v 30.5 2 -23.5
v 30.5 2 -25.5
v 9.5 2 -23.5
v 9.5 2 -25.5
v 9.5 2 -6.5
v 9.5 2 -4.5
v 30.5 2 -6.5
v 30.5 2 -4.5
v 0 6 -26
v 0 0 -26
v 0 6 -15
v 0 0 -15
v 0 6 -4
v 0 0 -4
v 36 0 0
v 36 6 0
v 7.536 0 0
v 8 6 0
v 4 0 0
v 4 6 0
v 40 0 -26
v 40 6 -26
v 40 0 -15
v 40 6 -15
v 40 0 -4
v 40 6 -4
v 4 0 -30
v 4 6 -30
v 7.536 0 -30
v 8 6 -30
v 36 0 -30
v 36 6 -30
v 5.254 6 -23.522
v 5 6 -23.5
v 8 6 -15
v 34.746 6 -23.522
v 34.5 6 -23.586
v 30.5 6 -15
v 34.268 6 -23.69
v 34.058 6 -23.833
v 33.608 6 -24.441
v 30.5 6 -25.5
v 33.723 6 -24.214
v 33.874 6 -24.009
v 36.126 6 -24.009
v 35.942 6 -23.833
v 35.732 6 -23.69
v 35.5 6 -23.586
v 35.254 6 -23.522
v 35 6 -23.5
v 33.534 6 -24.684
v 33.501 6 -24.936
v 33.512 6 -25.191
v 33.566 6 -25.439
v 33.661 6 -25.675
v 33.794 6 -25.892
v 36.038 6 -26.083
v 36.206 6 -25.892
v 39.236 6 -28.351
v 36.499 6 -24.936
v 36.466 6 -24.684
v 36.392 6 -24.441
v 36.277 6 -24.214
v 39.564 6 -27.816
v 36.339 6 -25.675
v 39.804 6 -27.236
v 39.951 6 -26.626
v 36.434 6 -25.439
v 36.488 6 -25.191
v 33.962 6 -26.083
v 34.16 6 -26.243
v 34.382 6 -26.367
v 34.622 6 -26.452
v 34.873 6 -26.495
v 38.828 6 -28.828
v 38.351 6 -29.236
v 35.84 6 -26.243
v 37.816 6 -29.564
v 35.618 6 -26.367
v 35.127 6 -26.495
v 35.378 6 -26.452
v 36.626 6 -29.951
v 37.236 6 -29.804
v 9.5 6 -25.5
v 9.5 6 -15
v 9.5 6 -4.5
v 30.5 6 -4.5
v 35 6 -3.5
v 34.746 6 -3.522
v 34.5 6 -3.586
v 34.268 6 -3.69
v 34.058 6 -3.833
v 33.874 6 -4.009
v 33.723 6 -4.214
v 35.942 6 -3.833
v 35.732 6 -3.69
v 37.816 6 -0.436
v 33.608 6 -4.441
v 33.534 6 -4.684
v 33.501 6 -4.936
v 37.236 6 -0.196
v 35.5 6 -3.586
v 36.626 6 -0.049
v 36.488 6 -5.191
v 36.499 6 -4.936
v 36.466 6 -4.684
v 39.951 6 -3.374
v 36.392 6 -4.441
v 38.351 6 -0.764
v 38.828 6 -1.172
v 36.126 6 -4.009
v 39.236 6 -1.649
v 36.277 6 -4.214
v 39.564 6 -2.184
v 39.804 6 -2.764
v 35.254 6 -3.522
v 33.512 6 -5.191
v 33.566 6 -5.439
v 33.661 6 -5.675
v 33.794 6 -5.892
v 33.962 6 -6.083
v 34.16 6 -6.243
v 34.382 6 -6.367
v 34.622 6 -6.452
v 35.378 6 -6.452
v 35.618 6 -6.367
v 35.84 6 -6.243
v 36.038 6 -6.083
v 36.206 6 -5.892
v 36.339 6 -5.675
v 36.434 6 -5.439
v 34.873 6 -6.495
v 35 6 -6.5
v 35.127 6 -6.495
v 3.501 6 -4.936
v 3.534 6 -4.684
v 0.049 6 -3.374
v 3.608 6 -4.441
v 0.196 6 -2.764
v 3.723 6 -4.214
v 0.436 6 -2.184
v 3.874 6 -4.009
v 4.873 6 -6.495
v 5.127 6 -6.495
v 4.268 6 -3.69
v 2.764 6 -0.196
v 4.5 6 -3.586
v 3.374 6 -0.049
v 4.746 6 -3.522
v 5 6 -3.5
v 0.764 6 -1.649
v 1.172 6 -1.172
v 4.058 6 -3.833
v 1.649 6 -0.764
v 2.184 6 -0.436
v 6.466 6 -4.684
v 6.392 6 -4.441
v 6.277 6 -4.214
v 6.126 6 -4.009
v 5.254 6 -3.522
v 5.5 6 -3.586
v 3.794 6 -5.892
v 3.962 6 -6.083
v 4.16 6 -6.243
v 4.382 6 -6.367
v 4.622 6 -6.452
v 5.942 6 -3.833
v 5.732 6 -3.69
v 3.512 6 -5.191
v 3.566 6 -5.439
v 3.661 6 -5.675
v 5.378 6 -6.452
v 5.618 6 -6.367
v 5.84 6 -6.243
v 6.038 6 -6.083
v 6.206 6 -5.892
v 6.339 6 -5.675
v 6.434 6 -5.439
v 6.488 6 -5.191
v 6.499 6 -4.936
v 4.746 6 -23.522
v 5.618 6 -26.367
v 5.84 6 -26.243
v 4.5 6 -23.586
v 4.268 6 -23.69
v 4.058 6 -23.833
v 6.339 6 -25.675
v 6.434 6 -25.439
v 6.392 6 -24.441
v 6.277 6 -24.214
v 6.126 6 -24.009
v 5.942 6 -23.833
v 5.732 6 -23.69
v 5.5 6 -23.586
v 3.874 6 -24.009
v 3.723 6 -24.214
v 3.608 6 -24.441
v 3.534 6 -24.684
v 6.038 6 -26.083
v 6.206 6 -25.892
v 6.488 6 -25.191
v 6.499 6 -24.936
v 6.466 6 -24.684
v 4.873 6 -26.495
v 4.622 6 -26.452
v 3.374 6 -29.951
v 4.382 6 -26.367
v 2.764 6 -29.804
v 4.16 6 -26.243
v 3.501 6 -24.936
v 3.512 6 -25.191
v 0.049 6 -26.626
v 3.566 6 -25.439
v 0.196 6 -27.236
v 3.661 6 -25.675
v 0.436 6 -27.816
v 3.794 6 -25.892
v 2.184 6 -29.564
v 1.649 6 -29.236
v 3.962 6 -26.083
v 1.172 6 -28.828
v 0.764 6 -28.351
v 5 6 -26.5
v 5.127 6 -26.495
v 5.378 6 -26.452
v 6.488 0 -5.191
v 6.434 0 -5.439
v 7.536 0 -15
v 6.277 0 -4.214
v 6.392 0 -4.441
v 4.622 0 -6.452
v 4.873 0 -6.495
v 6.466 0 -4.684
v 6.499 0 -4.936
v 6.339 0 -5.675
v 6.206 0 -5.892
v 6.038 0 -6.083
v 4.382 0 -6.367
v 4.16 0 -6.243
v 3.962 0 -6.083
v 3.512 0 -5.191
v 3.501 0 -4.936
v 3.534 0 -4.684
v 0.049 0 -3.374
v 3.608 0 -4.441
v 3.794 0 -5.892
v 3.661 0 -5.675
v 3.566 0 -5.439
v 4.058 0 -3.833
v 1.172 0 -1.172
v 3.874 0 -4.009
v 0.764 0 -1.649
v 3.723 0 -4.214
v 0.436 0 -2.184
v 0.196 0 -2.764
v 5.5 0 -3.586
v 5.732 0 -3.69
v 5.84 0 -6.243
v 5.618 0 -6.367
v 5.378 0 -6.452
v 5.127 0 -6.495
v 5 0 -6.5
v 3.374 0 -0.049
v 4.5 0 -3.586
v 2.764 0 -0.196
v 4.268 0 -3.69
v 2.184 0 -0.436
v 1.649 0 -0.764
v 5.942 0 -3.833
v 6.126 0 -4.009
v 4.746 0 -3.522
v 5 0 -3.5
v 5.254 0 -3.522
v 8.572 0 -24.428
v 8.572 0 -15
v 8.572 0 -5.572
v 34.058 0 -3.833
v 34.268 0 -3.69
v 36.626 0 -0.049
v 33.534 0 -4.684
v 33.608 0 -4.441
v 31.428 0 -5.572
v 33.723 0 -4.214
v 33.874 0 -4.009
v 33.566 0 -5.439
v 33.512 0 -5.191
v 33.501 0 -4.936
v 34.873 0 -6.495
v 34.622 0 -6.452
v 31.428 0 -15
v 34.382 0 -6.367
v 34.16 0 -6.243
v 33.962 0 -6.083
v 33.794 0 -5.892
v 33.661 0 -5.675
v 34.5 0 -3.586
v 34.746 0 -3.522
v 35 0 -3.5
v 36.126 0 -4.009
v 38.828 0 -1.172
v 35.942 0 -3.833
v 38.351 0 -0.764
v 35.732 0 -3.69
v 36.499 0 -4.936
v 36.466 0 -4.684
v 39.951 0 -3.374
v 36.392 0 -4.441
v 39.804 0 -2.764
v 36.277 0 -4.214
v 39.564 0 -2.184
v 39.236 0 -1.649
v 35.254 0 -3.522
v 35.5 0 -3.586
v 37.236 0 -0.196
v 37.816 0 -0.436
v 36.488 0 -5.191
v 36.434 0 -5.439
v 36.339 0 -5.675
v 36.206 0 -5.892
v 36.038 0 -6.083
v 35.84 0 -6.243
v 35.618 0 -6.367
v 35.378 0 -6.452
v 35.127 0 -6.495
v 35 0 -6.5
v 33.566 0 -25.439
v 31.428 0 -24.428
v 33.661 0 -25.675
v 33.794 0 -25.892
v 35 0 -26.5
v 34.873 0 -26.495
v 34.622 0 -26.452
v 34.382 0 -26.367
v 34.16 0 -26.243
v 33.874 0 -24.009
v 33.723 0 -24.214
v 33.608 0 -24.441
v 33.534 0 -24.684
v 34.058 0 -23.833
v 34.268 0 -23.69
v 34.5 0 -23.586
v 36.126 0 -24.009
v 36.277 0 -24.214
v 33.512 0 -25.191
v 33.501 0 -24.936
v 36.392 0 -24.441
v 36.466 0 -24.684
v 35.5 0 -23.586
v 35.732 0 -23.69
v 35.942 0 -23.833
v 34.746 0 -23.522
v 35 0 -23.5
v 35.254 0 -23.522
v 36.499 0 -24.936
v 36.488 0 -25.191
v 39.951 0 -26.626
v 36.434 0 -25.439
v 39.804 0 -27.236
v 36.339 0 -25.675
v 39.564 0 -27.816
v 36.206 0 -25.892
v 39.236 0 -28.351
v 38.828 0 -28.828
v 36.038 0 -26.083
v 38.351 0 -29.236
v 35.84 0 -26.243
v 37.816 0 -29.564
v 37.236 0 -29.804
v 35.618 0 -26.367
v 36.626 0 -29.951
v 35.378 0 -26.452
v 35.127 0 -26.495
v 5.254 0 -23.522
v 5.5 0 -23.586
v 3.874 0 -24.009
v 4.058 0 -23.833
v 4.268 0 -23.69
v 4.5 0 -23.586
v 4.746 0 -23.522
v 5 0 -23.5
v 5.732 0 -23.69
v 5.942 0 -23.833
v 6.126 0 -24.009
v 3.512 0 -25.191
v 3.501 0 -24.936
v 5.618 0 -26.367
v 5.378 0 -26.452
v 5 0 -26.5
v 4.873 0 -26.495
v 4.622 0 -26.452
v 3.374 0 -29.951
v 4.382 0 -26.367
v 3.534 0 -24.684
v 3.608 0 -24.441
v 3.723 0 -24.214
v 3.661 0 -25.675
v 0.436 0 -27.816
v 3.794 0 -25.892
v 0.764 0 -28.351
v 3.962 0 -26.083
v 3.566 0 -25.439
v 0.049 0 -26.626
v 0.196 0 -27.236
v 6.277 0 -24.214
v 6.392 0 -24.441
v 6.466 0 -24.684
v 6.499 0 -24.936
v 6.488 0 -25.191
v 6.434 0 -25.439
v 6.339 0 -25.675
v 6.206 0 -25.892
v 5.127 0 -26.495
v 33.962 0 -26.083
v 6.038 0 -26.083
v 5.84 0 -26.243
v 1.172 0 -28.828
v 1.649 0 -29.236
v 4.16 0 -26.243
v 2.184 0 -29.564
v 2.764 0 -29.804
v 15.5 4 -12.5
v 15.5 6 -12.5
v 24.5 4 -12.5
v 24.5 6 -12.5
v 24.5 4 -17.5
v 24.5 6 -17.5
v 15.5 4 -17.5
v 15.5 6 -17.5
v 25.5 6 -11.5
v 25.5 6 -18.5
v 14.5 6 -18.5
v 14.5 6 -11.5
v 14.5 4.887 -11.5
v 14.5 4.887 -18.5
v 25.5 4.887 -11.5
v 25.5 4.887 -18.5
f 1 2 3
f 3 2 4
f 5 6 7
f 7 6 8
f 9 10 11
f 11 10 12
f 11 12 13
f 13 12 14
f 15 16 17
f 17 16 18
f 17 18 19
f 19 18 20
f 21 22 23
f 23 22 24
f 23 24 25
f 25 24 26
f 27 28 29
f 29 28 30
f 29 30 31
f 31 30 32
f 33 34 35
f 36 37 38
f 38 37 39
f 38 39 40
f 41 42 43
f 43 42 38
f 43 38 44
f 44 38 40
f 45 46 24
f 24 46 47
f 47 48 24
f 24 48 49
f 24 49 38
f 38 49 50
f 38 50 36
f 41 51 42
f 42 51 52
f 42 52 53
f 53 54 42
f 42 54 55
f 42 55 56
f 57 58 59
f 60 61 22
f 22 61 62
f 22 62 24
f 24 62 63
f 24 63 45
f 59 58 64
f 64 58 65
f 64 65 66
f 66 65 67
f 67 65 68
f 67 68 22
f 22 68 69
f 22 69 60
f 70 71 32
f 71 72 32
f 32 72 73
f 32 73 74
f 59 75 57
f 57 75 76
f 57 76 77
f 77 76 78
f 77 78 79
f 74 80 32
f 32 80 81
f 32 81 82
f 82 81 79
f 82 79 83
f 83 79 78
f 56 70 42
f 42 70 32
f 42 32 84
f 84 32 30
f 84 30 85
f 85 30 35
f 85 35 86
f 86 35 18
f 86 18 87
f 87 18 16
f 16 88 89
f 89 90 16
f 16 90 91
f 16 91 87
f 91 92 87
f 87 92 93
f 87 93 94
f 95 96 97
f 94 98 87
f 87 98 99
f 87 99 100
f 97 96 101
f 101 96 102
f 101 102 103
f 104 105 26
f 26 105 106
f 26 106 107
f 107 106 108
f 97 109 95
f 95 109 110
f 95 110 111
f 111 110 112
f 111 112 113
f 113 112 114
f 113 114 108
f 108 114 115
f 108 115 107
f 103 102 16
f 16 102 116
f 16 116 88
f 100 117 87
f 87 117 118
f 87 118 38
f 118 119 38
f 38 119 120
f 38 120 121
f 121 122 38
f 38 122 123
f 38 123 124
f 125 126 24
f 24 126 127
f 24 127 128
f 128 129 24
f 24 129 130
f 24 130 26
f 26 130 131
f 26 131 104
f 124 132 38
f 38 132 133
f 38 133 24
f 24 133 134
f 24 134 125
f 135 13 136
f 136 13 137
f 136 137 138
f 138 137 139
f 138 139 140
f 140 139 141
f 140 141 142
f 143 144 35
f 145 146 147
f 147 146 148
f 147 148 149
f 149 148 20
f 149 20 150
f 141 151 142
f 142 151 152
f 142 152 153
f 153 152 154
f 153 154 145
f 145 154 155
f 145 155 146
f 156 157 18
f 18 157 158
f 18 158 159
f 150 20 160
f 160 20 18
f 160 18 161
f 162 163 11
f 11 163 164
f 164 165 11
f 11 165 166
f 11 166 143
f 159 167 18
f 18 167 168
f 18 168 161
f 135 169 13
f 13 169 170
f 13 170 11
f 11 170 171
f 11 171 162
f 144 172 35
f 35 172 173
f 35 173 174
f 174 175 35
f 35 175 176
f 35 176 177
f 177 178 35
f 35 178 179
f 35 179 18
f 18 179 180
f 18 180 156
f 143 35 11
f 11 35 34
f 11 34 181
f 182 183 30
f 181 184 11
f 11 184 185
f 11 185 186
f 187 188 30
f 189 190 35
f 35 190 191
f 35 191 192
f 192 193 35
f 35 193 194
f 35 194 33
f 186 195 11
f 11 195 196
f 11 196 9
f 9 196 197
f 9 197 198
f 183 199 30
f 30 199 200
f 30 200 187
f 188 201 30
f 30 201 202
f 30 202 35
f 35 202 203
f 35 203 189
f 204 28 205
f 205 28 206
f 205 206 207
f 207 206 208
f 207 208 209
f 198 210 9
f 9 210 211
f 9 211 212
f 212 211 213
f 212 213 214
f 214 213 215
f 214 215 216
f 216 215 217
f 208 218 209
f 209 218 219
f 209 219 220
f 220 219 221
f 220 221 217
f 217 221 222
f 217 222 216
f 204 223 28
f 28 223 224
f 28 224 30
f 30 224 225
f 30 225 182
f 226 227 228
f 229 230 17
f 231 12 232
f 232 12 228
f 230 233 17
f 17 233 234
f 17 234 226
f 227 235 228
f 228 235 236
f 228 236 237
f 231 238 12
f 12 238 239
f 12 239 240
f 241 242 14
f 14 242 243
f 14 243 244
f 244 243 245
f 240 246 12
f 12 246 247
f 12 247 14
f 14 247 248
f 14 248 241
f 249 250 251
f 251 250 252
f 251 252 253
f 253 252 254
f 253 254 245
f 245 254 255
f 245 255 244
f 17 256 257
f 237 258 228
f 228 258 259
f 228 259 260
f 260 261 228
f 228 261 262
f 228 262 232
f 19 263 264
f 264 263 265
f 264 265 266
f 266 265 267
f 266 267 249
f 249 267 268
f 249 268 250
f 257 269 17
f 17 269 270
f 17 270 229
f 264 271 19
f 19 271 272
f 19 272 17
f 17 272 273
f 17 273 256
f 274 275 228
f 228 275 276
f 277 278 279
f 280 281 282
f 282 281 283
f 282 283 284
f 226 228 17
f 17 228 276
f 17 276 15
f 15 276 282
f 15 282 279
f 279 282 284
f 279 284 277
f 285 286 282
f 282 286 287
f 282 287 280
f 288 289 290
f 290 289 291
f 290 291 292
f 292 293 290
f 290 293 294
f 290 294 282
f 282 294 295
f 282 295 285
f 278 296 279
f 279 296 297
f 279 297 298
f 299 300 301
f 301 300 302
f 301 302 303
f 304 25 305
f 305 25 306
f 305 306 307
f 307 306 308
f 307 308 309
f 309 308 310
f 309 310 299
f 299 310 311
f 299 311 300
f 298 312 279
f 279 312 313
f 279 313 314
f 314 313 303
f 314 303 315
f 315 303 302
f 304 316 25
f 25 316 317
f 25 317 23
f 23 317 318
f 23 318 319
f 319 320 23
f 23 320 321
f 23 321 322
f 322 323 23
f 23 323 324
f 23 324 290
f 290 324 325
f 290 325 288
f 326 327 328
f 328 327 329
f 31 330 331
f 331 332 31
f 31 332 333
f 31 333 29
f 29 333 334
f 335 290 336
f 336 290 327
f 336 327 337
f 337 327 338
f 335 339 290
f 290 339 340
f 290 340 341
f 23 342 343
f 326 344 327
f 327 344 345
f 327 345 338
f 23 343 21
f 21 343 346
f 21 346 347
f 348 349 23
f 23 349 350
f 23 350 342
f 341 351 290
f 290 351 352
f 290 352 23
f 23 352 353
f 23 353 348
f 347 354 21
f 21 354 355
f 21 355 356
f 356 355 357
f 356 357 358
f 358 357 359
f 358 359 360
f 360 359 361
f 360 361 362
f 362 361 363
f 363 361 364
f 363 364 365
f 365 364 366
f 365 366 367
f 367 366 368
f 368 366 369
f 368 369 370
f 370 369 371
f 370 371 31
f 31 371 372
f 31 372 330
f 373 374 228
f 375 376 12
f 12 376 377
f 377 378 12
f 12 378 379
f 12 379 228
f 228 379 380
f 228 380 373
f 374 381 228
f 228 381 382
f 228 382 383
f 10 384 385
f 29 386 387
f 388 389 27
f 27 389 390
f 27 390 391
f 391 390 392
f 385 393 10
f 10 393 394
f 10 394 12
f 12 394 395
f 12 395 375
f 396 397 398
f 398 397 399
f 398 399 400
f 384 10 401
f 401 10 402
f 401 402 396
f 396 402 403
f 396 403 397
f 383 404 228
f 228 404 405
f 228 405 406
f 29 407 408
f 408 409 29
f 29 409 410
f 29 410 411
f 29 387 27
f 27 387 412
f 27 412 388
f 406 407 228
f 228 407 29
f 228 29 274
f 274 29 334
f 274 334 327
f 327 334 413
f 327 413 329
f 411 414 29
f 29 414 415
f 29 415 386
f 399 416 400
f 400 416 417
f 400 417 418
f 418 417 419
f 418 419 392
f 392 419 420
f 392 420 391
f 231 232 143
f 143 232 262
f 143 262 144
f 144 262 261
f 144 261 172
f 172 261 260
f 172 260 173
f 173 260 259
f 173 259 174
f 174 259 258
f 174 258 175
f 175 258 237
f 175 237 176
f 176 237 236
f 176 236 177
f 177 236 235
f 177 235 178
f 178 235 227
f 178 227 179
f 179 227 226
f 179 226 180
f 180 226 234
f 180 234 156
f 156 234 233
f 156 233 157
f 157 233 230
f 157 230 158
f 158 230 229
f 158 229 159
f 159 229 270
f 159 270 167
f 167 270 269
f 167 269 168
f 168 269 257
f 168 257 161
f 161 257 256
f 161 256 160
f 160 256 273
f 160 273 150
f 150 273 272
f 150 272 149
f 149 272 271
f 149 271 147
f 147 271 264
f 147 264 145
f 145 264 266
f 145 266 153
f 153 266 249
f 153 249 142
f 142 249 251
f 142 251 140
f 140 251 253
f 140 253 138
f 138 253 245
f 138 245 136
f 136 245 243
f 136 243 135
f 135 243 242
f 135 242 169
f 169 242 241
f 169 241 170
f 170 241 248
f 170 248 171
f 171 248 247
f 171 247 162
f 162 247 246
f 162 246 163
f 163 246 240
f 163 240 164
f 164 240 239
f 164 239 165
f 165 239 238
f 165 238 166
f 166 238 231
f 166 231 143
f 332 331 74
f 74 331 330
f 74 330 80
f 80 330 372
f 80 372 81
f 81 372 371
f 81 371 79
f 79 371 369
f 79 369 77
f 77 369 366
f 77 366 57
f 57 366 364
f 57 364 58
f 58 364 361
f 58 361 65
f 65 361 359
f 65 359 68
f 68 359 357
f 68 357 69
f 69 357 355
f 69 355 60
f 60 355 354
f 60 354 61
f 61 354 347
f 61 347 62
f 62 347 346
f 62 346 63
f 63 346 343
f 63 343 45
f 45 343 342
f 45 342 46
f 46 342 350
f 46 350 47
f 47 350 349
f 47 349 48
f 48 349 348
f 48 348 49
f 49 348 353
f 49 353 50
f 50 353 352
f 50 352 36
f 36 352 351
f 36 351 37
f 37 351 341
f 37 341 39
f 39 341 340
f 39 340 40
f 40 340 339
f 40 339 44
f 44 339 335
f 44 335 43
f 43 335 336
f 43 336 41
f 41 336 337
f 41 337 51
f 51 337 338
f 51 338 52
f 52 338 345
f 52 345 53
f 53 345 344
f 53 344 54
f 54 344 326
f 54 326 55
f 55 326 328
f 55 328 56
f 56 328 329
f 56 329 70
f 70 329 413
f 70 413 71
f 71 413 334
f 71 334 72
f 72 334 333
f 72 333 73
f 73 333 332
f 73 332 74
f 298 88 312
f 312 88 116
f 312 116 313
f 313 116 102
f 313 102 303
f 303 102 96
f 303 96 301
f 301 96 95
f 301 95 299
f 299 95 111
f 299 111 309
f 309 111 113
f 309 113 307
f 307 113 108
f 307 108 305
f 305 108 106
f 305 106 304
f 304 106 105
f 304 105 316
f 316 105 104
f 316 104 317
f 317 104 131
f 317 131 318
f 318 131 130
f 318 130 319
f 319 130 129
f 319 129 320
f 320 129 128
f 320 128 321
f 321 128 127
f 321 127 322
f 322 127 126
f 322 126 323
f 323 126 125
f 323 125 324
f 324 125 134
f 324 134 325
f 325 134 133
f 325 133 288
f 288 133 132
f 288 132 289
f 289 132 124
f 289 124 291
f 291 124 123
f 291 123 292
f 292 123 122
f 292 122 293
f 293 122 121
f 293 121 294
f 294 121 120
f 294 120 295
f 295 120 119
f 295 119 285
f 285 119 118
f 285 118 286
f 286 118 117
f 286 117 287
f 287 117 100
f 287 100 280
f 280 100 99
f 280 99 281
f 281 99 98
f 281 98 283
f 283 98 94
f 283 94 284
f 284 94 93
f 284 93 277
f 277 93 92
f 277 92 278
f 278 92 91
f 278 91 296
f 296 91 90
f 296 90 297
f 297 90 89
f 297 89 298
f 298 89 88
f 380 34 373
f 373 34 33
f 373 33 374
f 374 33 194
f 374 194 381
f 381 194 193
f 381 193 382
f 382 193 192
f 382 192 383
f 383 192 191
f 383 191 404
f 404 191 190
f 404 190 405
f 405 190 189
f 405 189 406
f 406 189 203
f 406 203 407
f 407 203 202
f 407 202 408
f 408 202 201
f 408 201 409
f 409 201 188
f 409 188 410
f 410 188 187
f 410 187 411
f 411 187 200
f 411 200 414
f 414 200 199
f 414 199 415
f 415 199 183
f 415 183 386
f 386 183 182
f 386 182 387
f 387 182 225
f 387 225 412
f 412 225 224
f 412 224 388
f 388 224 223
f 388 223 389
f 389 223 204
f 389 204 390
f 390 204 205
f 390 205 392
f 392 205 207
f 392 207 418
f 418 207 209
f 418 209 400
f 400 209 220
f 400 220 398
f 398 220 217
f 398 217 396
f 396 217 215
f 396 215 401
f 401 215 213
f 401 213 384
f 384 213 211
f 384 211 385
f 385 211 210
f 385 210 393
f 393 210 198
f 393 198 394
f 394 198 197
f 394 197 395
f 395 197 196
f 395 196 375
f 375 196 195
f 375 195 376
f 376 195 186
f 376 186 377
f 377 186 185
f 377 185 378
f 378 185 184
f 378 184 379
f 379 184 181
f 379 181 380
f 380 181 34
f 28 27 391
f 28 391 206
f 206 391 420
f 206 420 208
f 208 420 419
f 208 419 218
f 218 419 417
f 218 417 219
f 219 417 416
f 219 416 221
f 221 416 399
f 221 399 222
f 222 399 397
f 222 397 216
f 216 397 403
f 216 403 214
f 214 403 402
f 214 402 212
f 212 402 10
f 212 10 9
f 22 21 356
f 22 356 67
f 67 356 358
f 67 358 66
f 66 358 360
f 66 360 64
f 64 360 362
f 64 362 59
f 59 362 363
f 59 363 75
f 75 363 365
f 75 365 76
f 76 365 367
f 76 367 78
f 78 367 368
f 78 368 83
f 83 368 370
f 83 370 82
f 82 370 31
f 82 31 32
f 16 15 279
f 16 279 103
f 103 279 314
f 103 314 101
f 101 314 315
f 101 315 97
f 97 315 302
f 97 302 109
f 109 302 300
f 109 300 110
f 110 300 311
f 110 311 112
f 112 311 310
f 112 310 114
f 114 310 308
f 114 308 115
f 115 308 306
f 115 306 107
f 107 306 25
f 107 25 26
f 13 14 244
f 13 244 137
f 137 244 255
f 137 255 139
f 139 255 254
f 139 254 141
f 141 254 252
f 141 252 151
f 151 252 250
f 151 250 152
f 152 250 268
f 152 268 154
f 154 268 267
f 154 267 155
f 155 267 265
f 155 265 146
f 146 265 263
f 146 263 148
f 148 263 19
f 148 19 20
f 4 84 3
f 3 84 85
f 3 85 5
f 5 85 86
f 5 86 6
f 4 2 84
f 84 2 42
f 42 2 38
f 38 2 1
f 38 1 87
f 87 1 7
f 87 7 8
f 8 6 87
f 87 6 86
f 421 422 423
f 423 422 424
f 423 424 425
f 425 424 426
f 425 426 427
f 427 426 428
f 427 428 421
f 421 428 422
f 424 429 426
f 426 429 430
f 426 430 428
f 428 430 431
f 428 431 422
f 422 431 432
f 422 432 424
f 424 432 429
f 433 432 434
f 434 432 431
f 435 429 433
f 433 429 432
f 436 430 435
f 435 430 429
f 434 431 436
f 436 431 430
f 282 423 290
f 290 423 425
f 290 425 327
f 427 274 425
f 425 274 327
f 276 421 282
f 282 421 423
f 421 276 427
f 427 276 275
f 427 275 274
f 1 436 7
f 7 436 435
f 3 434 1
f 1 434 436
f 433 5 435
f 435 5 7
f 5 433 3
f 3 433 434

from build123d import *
from OCP.BRepFilletAPI import BRepFilletAPI_MakeChamfer

# Parameters (mm, degrees)
SKETCH1_W           = 40
SKETCH1_H           = 30
BOSS_EXTRUDE1_DEPTH = 6
SKETCH2_R           = 1.5
CUT_EXTRUDE1_DEPTH  = 6
FILLET1_R           = 4
SKETCH3_W           = 21
SKETCH3_H           = 21
CUT_EXTRUDE2_DEPTH  = 4
SKETCH6_W           = 9
SKETCH6_H           = 5
CUT_EXTRUDE3_DEPTH  = 2
SKETCH7_W           = 11
SKETCH7_H           = 7
SKETCH7_W_2         = 9
SKETCH7_H_2         = 5
BOSS_EXTRUDE2_DEPTH = 4
CHAMFER1_SIZE       = 4
CHAMFER1_SIZE2      = 6.92820323
CHAMFER2_SIZE       = 2.886751346
CHAMFER2_SIZE_2     = 5


with BuildPart() as part:
    # Sketch1 → Boss-Extrude1 (new body)
    with BuildSketch(Plane(origin=(0, 0, 0), x_dir=(1, 0, 0), z_dir=(0, 1, 0))):
        with Locations((20, 15)):
            Rectangle(SKETCH1_W, SKETCH1_H)
    extrude(amount=BOSS_EXTRUDE1_DEPTH)

    # Sketch2 → Cut-Extrude1 (cut)
    with BuildSketch(Plane(origin=(0, 6, 0), x_dir=(1, 0, 0), z_dir=(0, 1, 0))):
        with Locations(Location((5, 5, 0), (0, 0, 270))):
            Circle(SKETCH2_R)
        with Locations(Location((5, 25, 0), (0, 0, 90))):
            Circle(SKETCH2_R)
        with Locations(Location((35, 5, 0), (0, 0, 90))):
            Circle(SKETCH2_R)
        with Locations(Location((35, 25, 0), (0, 0, 270))):
            Circle(SKETCH2_R)
    extrude(amount=-CUT_EXTRUDE1_DEPTH, mode=Mode.SUBTRACT)

    # Fillet1
    fillet1_edges = [part.edges().sort_by_distance(p)[0] for p in [
        (0, 3, -30),
        (40, 3, -30),
        (40, 3, 0),
        (0, 3, 0),
    ]]
    fillet(fillet1_edges, radius=FILLET1_R)

    # Sketch3 → Cut-Extrude2 (cut)
    with BuildSketch(Plane(origin=(0, 6, 0), x_dir=(1, 0, 0), z_dir=(0, 1, 0))):
        with Locations((20, 15)):
            Rectangle(SKETCH3_W, SKETCH3_H)
    extrude(amount=-CUT_EXTRUDE2_DEPTH, mode=Mode.SUBTRACT)

    # Sketch6 → Cut-Extrude3 (cut)
    with BuildSketch(Plane(origin=(0, 2, 0), x_dir=(1, 0, 0), z_dir=(0, 1, 0))):
        with Locations((20, 15)):
            Rectangle(SKETCH6_W, SKETCH6_H)
    extrude(amount=-CUT_EXTRUDE3_DEPTH, mode=Mode.SUBTRACT)

    # Sketch7 → Boss-Extrude2 (add)
    with BuildSketch(Plane(origin=(0, 2, 0), x_dir=(1, 0, 0), z_dir=(0, 1, 0))):
        with Locations((20, 15)):
            Rectangle(SKETCH7_W, SKETCH7_H)
        with Locations((20, 15)):
            Rectangle(SKETCH7_W_2, SKETCH7_H_2, mode=Mode.SUBTRACT)
    extrude(amount=BOSS_EXTRUDE2_DEPTH)

    # Chamfer1: one chamfer whose edges measure the first distance from different faces: ONE call of the kernel's chamfer builder (chamfer() names one face for all edges)
    chamfer1_edges_1 = [part.edges().sort_by_distance(p)[0] for p in [
        (20, 0, -12.5),
    ]]
    chamfer1_side_1 = [part.faces().sort_by_distance(p)[0] for p in [
        (20, 3, -12.5),
    ]]
    chamfer1_edges_2 = [part.edges().sort_by_distance(p)[0] for p in [
        (24.5, 0, -15),
    ]]
    chamfer1_side_2 = [part.faces().sort_by_distance(p)[0] for p in [
        (24.5, 3, -15),
    ]]
    chamfer1_edges_3 = [part.edges().sort_by_distance(p)[0] for p in [
        (20, 0, -17.5),
    ]]
    chamfer1_side_3 = [part.faces().sort_by_distance(p)[0] for p in [
        (20, 3, -17.5),
    ]]
    chamfer1_edges_4 = [part.edges().sort_by_distance(p)[0] for p in [
        (15.5, 0, -15),
    ]]
    chamfer1_side_4 = [part.faces().sort_by_distance(p)[0] for p in [
        (15.5, 3, -15),
    ]]
    chamfer1 = BRepFilletAPI_MakeChamfer(part.part.solid().wrapped)
    for e in chamfer1_edges_1:
        chamfer1.Add(CHAMFER1_SIZE, CHAMFER1_SIZE2, e.wrapped, chamfer1_side_1[0].wrapped)  # the first distance lies on this face
    for e in chamfer1_edges_2:
        chamfer1.Add(CHAMFER1_SIZE, CHAMFER1_SIZE2, e.wrapped, chamfer1_side_2[0].wrapped)  # the first distance lies on this face
    for e in chamfer1_edges_3:
        chamfer1.Add(CHAMFER1_SIZE, CHAMFER1_SIZE2, e.wrapped, chamfer1_side_3[0].wrapped)  # the first distance lies on this face
    for e in chamfer1_edges_4:
        chamfer1.Add(CHAMFER1_SIZE, CHAMFER1_SIZE2, e.wrapped, chamfer1_side_4[0].wrapped)  # the first distance lies on this face
    add(Compound.cast(chamfer1.Shape()), mode=Mode.REPLACE)

    # Chamfer2
    # the kernel refuses this chamfer: 5, 2.886751346 mm, written as the material it adds along each edge
    with BuildSketch(Plane(origin=(14.5, 2, -31.435428773), x_dir=(0, 1, 0), z_dir=(0, 0, 1))) as chamfer2_piece_1_section:
        Polygon((CHAMFER2_SIZE, 0), (0, CHAMFER2_SIZE_2), (0, 0), align=None)
    chamfer2_piece_1 = extrude(amount=32.870857546, mode=Mode.PRIVATE)
    chamfer2_piece_1 = split(chamfer2_piece_1, bisect_by=Plane(origin=(13.883974596, 3.066987298, -31.435428773), z_dir=(-0.499999999999998, 0.8660254037844398, 0)), keep=Keep.TOP, mode=Mode.PRIVATE)
    chamfer2_piece_1 = split(chamfer2_piece_1, bisect_by=Plane(origin=(14.5, -1.436141454, -29.45157158), z_dir=(0, -0.8660254037844382, 0.500000000000001)), keep=Keep.TOP, mode=Mode.PRIVATE)
    chamfer2_piece_1 = split(chamfer2_piece_1, bisect_by=Plane(origin=(14.5, 12.797357386, -25.20157158), z_dir=(0, -0.8660254037844382, -0.500000000000001)), keep=Keep.TOP, mode=Mode.PRIVATE)
    with BuildSketch(Plane(origin=(14.5, 2, -31.435428773), x_dir=(0, 1, 0), z_dir=(0, 0, 1))) as chamfer2_piece_2_section:
        Polygon((CHAMFER2_SIZE, 0), (0, CHAMFER2_SIZE_2), (0, 0), align=None)
    chamfer2_piece_2 = extrude(amount=32.870857546, mode=Mode.PRIVATE)
    chamfer2_piece_2 = split(chamfer2_piece_2, bisect_by=Plane(origin=(14.5, -2.534217665, -28.817596984), z_dir=(0, 0.8660254037844398, -0.499999999999998)), keep=Keep.TOP, mode=Mode.PRIVATE)
    chamfer2_piece_2 = split(chamfer2_piece_2, bisect_by=Plane(origin=(14.5, -1.436141454, -29.45157158), z_dir=(0, -0.8660254037844382, 0.500000000000001)), keep=Keep.TOP, mode=Mode.PRIVATE)
    with BuildSketch(Plane(origin=(14.5, 2, -31.435428773), x_dir=(0, 1, 0), z_dir=(0, 0, 1))) as chamfer2_piece_3_section:
        Polygon((CHAMFER2_SIZE, 0), (0, CHAMFER2_SIZE_2), (0, 0), align=None)
    chamfer2_piece_3 = extrude(amount=32.870857546, mode=Mode.PRIVATE)
    chamfer2_piece_3 = split(chamfer2_piece_3, bisect_by=Plane(origin=(14.5, 11.699281175, -25.835546176), z_dir=(0, 0.8660254037844398, 0.49999999999999795)), keep=Keep.TOP, mode=Mode.PRIVATE)
    chamfer2_piece_3 = split(chamfer2_piece_3, bisect_by=Plane(origin=(14.5, 12.797357386, -25.20157158), z_dir=(0, -0.8660254037844382, -0.500000000000001)), keep=Keep.TOP, mode=Mode.PRIVATE)
    with BuildSketch(Plane(origin=(1.564571227, 2, -11.5), x_dir=(0, 1, 0), z_dir=(1, 0, 0))) as chamfer2_piece_4_section:
        Polygon((CHAMFER2_SIZE, 0), (0, CHAMFER2_SIZE_2), (0, 0), align=None)
    chamfer2_piece_4 = extrude(amount=36.870857546, mode=Mode.PRIVATE)
    chamfer2_piece_4 = split(chamfer2_piece_4, bisect_by=Plane(origin=(1.564571227, 3.066987298, -10.883974596), z_dir=(0, 0.8660254037844398, 0.49999999999999795)), keep=Keep.TOP, mode=Mode.PRIVATE)
    chamfer2_piece_4 = split(chamfer2_piece_4, bisect_by=Plane(origin=(8.79842842, 14.529408194, -11.5), z_dir=(-0.500000000000001, -0.8660254037844382, 0)), keep=Keep.TOP, mode=Mode.PRIVATE)
    chamfer2_piece_4 = split(chamfer2_piece_4, bisect_by=Plane(origin=(3.54842842, -1.436141454, -11.5), z_dir=(0.500000000000001, -0.8660254037844382, 0)), keep=Keep.TOP, mode=Mode.PRIVATE)
    with BuildSketch(Plane(origin=(1.564571227, 2, -11.5), x_dir=(0, 1, 0), z_dir=(1, 0, 0))) as chamfer2_piece_5_section:
        Polygon((CHAMFER2_SIZE, 0), (0, CHAMFER2_SIZE_2), (0, 0), align=None)
    chamfer2_piece_5 = extrude(amount=36.870857546, mode=Mode.PRIVATE)
    chamfer2_piece_5 = split(chamfer2_piece_5, bisect_by=Plane(origin=(4.182403016, -2.534217665, -11.5), z_dir=(-0.499999999999998, 0.8660254037844398, 0)), keep=Keep.TOP, mode=Mode.PRIVATE)
    chamfer2_piece_5 = split(chamfer2_piece_5, bisect_by=Plane(origin=(3.54842842, -1.436141454, -11.5), z_dir=(0.500000000000001, -0.8660254037844382, 0)), keep=Keep.TOP, mode=Mode.PRIVATE)
    with BuildSketch(Plane(origin=(25.5, 2, 1.435428773), x_dir=(0, 1, 0), z_dir=(0, 0, -1))) as chamfer2_piece_6_section:
        Polygon((CHAMFER2_SIZE, 0), (0, CHAMFER2_SIZE_2), (0, 0), align=None)
    chamfer2_piece_6 = extrude(amount=32.870857546, mode=Mode.PRIVATE)
    chamfer2_piece_6 = split(chamfer2_piece_6, bisect_by=Plane(origin=(26.116025404, 3.066987298, 1.435428773), z_dir=(0.499999999999998, 0.8660254037844398, 0)), keep=Keep.TOP, mode=Mode.PRIVATE)
    chamfer2_piece_6 = split(chamfer2_piece_6, bisect_by=Plane(origin=(25.5, 12.797357386, -4.79842842), z_dir=(0, -0.8660254037844382, 0.500000000000001)), keep=Keep.TOP, mode=Mode.PRIVATE)
    chamfer2_piece_6 = split(chamfer2_piece_6, bisect_by=Plane(origin=(25.5, -1.436141454, -0.54842842), z_dir=(0, -0.8660254037844382, -0.500000000000001)), keep=Keep.TOP, mode=Mode.PRIVATE)
    with BuildSketch(Plane(origin=(25.5, 2, 1.435428773), x_dir=(0, 1, 0), z_dir=(0, 0, -1))) as chamfer2_piece_7_section:
        Polygon((CHAMFER2_SIZE, 0), (0, CHAMFER2_SIZE_2), (0, 0), align=None)
    chamfer2_piece_7 = extrude(amount=32.870857546, mode=Mode.PRIVATE)
    chamfer2_piece_7 = split(chamfer2_piece_7, bisect_by=Plane(origin=(25.5, -2.534217665, -1.182403016), z_dir=(0, 0.8660254037844398, 0.49999999999999795)), keep=Keep.TOP, mode=Mode.PRIVATE)
    chamfer2_piece_7 = split(chamfer2_piece_7, bisect_by=Plane(origin=(25.5, -1.436141454, -0.54842842), z_dir=(0, -0.8660254037844382, -0.500000000000001)), keep=Keep.TOP, mode=Mode.PRIVATE)
    with BuildSketch(Plane(origin=(25.5, 2, 1.435428773), x_dir=(0, 1, 0), z_dir=(0, 0, -1))) as chamfer2_piece_8_section:
        Polygon((CHAMFER2_SIZE, 0), (0, CHAMFER2_SIZE_2), (0, 0), align=None)
    chamfer2_piece_8 = extrude(amount=32.870857546, mode=Mode.PRIVATE)
    chamfer2_piece_8 = split(chamfer2_piece_8, bisect_by=Plane(origin=(25.5, 11.699281175, -4.164453824), z_dir=(0, 0.8660254037844398, -0.499999999999998)), keep=Keep.TOP, mode=Mode.PRIVATE)
    chamfer2_piece_8 = split(chamfer2_piece_8, bisect_by=Plane(origin=(25.5, 12.797357386, -4.79842842), z_dir=(0, -0.8660254037844382, 0.500000000000001)), keep=Keep.TOP, mode=Mode.PRIVATE)
    with BuildSketch(Plane(origin=(38.435428773, 2, -18.5), x_dir=(0, 1, 0), z_dir=(-1, 0, 0))) as chamfer2_piece_9_section:
        Polygon((CHAMFER2_SIZE, 0), (0, CHAMFER2_SIZE_2), (0, 0), align=None)
    chamfer2_piece_9 = extrude(amount=36.870857546, mode=Mode.PRIVATE)
    chamfer2_piece_9 = split(chamfer2_piece_9, bisect_by=Plane(origin=(38.435428773, 3.066987298, -19.116025404), z_dir=(0, 0.8660254037844398, -0.499999999999998)), keep=Keep.TOP, mode=Mode.PRIVATE)
    chamfer2_piece_9 = split(chamfer2_piece_9, bisect_by=Plane(origin=(36.45157158, -1.436141454, -18.5), z_dir=(-0.500000000000001, -0.8660254037844382, 0)), keep=Keep.TOP, mode=Mode.PRIVATE)
    chamfer2_piece_9 = split(chamfer2_piece_9, bisect_by=Plane(origin=(31.20157158, 14.529408194, -18.5), z_dir=(0.500000000000001, -0.8660254037844382, 0)), keep=Keep.TOP, mode=Mode.PRIVATE)
    with BuildSketch(Plane(origin=(38.435428773, 2, -18.5), x_dir=(0, 1, 0), z_dir=(-1, 0, 0))) as chamfer2_piece_10_section:
        Polygon((CHAMFER2_SIZE, 0), (0, CHAMFER2_SIZE_2), (0, 0), align=None)
    chamfer2_piece_10 = extrude(amount=36.870857546, mode=Mode.PRIVATE)
    chamfer2_piece_10 = split(chamfer2_piece_10, bisect_by=Plane(origin=(31.835546176, 13.431331982, -18.5), z_dir=(-0.499999999999998, 0.8660254037844398, 0)), keep=Keep.TOP, mode=Mode.PRIVATE)
    chamfer2_piece_10 = split(chamfer2_piece_10, bisect_by=Plane(origin=(31.20157158, 14.529408194, -18.5), z_dir=(0.500000000000001, -0.8660254037844382, 0)), keep=Keep.TOP, mode=Mode.PRIVATE)
    add([chamfer2_piece_1, chamfer2_piece_2, chamfer2_piece_3, chamfer2_piece_4, chamfer2_piece_5, chamfer2_piece_6, chamfer2_piece_7, chamfer2_piece_8, chamfer2_piece_9, chamfer2_piece_10])


solid = part.part
